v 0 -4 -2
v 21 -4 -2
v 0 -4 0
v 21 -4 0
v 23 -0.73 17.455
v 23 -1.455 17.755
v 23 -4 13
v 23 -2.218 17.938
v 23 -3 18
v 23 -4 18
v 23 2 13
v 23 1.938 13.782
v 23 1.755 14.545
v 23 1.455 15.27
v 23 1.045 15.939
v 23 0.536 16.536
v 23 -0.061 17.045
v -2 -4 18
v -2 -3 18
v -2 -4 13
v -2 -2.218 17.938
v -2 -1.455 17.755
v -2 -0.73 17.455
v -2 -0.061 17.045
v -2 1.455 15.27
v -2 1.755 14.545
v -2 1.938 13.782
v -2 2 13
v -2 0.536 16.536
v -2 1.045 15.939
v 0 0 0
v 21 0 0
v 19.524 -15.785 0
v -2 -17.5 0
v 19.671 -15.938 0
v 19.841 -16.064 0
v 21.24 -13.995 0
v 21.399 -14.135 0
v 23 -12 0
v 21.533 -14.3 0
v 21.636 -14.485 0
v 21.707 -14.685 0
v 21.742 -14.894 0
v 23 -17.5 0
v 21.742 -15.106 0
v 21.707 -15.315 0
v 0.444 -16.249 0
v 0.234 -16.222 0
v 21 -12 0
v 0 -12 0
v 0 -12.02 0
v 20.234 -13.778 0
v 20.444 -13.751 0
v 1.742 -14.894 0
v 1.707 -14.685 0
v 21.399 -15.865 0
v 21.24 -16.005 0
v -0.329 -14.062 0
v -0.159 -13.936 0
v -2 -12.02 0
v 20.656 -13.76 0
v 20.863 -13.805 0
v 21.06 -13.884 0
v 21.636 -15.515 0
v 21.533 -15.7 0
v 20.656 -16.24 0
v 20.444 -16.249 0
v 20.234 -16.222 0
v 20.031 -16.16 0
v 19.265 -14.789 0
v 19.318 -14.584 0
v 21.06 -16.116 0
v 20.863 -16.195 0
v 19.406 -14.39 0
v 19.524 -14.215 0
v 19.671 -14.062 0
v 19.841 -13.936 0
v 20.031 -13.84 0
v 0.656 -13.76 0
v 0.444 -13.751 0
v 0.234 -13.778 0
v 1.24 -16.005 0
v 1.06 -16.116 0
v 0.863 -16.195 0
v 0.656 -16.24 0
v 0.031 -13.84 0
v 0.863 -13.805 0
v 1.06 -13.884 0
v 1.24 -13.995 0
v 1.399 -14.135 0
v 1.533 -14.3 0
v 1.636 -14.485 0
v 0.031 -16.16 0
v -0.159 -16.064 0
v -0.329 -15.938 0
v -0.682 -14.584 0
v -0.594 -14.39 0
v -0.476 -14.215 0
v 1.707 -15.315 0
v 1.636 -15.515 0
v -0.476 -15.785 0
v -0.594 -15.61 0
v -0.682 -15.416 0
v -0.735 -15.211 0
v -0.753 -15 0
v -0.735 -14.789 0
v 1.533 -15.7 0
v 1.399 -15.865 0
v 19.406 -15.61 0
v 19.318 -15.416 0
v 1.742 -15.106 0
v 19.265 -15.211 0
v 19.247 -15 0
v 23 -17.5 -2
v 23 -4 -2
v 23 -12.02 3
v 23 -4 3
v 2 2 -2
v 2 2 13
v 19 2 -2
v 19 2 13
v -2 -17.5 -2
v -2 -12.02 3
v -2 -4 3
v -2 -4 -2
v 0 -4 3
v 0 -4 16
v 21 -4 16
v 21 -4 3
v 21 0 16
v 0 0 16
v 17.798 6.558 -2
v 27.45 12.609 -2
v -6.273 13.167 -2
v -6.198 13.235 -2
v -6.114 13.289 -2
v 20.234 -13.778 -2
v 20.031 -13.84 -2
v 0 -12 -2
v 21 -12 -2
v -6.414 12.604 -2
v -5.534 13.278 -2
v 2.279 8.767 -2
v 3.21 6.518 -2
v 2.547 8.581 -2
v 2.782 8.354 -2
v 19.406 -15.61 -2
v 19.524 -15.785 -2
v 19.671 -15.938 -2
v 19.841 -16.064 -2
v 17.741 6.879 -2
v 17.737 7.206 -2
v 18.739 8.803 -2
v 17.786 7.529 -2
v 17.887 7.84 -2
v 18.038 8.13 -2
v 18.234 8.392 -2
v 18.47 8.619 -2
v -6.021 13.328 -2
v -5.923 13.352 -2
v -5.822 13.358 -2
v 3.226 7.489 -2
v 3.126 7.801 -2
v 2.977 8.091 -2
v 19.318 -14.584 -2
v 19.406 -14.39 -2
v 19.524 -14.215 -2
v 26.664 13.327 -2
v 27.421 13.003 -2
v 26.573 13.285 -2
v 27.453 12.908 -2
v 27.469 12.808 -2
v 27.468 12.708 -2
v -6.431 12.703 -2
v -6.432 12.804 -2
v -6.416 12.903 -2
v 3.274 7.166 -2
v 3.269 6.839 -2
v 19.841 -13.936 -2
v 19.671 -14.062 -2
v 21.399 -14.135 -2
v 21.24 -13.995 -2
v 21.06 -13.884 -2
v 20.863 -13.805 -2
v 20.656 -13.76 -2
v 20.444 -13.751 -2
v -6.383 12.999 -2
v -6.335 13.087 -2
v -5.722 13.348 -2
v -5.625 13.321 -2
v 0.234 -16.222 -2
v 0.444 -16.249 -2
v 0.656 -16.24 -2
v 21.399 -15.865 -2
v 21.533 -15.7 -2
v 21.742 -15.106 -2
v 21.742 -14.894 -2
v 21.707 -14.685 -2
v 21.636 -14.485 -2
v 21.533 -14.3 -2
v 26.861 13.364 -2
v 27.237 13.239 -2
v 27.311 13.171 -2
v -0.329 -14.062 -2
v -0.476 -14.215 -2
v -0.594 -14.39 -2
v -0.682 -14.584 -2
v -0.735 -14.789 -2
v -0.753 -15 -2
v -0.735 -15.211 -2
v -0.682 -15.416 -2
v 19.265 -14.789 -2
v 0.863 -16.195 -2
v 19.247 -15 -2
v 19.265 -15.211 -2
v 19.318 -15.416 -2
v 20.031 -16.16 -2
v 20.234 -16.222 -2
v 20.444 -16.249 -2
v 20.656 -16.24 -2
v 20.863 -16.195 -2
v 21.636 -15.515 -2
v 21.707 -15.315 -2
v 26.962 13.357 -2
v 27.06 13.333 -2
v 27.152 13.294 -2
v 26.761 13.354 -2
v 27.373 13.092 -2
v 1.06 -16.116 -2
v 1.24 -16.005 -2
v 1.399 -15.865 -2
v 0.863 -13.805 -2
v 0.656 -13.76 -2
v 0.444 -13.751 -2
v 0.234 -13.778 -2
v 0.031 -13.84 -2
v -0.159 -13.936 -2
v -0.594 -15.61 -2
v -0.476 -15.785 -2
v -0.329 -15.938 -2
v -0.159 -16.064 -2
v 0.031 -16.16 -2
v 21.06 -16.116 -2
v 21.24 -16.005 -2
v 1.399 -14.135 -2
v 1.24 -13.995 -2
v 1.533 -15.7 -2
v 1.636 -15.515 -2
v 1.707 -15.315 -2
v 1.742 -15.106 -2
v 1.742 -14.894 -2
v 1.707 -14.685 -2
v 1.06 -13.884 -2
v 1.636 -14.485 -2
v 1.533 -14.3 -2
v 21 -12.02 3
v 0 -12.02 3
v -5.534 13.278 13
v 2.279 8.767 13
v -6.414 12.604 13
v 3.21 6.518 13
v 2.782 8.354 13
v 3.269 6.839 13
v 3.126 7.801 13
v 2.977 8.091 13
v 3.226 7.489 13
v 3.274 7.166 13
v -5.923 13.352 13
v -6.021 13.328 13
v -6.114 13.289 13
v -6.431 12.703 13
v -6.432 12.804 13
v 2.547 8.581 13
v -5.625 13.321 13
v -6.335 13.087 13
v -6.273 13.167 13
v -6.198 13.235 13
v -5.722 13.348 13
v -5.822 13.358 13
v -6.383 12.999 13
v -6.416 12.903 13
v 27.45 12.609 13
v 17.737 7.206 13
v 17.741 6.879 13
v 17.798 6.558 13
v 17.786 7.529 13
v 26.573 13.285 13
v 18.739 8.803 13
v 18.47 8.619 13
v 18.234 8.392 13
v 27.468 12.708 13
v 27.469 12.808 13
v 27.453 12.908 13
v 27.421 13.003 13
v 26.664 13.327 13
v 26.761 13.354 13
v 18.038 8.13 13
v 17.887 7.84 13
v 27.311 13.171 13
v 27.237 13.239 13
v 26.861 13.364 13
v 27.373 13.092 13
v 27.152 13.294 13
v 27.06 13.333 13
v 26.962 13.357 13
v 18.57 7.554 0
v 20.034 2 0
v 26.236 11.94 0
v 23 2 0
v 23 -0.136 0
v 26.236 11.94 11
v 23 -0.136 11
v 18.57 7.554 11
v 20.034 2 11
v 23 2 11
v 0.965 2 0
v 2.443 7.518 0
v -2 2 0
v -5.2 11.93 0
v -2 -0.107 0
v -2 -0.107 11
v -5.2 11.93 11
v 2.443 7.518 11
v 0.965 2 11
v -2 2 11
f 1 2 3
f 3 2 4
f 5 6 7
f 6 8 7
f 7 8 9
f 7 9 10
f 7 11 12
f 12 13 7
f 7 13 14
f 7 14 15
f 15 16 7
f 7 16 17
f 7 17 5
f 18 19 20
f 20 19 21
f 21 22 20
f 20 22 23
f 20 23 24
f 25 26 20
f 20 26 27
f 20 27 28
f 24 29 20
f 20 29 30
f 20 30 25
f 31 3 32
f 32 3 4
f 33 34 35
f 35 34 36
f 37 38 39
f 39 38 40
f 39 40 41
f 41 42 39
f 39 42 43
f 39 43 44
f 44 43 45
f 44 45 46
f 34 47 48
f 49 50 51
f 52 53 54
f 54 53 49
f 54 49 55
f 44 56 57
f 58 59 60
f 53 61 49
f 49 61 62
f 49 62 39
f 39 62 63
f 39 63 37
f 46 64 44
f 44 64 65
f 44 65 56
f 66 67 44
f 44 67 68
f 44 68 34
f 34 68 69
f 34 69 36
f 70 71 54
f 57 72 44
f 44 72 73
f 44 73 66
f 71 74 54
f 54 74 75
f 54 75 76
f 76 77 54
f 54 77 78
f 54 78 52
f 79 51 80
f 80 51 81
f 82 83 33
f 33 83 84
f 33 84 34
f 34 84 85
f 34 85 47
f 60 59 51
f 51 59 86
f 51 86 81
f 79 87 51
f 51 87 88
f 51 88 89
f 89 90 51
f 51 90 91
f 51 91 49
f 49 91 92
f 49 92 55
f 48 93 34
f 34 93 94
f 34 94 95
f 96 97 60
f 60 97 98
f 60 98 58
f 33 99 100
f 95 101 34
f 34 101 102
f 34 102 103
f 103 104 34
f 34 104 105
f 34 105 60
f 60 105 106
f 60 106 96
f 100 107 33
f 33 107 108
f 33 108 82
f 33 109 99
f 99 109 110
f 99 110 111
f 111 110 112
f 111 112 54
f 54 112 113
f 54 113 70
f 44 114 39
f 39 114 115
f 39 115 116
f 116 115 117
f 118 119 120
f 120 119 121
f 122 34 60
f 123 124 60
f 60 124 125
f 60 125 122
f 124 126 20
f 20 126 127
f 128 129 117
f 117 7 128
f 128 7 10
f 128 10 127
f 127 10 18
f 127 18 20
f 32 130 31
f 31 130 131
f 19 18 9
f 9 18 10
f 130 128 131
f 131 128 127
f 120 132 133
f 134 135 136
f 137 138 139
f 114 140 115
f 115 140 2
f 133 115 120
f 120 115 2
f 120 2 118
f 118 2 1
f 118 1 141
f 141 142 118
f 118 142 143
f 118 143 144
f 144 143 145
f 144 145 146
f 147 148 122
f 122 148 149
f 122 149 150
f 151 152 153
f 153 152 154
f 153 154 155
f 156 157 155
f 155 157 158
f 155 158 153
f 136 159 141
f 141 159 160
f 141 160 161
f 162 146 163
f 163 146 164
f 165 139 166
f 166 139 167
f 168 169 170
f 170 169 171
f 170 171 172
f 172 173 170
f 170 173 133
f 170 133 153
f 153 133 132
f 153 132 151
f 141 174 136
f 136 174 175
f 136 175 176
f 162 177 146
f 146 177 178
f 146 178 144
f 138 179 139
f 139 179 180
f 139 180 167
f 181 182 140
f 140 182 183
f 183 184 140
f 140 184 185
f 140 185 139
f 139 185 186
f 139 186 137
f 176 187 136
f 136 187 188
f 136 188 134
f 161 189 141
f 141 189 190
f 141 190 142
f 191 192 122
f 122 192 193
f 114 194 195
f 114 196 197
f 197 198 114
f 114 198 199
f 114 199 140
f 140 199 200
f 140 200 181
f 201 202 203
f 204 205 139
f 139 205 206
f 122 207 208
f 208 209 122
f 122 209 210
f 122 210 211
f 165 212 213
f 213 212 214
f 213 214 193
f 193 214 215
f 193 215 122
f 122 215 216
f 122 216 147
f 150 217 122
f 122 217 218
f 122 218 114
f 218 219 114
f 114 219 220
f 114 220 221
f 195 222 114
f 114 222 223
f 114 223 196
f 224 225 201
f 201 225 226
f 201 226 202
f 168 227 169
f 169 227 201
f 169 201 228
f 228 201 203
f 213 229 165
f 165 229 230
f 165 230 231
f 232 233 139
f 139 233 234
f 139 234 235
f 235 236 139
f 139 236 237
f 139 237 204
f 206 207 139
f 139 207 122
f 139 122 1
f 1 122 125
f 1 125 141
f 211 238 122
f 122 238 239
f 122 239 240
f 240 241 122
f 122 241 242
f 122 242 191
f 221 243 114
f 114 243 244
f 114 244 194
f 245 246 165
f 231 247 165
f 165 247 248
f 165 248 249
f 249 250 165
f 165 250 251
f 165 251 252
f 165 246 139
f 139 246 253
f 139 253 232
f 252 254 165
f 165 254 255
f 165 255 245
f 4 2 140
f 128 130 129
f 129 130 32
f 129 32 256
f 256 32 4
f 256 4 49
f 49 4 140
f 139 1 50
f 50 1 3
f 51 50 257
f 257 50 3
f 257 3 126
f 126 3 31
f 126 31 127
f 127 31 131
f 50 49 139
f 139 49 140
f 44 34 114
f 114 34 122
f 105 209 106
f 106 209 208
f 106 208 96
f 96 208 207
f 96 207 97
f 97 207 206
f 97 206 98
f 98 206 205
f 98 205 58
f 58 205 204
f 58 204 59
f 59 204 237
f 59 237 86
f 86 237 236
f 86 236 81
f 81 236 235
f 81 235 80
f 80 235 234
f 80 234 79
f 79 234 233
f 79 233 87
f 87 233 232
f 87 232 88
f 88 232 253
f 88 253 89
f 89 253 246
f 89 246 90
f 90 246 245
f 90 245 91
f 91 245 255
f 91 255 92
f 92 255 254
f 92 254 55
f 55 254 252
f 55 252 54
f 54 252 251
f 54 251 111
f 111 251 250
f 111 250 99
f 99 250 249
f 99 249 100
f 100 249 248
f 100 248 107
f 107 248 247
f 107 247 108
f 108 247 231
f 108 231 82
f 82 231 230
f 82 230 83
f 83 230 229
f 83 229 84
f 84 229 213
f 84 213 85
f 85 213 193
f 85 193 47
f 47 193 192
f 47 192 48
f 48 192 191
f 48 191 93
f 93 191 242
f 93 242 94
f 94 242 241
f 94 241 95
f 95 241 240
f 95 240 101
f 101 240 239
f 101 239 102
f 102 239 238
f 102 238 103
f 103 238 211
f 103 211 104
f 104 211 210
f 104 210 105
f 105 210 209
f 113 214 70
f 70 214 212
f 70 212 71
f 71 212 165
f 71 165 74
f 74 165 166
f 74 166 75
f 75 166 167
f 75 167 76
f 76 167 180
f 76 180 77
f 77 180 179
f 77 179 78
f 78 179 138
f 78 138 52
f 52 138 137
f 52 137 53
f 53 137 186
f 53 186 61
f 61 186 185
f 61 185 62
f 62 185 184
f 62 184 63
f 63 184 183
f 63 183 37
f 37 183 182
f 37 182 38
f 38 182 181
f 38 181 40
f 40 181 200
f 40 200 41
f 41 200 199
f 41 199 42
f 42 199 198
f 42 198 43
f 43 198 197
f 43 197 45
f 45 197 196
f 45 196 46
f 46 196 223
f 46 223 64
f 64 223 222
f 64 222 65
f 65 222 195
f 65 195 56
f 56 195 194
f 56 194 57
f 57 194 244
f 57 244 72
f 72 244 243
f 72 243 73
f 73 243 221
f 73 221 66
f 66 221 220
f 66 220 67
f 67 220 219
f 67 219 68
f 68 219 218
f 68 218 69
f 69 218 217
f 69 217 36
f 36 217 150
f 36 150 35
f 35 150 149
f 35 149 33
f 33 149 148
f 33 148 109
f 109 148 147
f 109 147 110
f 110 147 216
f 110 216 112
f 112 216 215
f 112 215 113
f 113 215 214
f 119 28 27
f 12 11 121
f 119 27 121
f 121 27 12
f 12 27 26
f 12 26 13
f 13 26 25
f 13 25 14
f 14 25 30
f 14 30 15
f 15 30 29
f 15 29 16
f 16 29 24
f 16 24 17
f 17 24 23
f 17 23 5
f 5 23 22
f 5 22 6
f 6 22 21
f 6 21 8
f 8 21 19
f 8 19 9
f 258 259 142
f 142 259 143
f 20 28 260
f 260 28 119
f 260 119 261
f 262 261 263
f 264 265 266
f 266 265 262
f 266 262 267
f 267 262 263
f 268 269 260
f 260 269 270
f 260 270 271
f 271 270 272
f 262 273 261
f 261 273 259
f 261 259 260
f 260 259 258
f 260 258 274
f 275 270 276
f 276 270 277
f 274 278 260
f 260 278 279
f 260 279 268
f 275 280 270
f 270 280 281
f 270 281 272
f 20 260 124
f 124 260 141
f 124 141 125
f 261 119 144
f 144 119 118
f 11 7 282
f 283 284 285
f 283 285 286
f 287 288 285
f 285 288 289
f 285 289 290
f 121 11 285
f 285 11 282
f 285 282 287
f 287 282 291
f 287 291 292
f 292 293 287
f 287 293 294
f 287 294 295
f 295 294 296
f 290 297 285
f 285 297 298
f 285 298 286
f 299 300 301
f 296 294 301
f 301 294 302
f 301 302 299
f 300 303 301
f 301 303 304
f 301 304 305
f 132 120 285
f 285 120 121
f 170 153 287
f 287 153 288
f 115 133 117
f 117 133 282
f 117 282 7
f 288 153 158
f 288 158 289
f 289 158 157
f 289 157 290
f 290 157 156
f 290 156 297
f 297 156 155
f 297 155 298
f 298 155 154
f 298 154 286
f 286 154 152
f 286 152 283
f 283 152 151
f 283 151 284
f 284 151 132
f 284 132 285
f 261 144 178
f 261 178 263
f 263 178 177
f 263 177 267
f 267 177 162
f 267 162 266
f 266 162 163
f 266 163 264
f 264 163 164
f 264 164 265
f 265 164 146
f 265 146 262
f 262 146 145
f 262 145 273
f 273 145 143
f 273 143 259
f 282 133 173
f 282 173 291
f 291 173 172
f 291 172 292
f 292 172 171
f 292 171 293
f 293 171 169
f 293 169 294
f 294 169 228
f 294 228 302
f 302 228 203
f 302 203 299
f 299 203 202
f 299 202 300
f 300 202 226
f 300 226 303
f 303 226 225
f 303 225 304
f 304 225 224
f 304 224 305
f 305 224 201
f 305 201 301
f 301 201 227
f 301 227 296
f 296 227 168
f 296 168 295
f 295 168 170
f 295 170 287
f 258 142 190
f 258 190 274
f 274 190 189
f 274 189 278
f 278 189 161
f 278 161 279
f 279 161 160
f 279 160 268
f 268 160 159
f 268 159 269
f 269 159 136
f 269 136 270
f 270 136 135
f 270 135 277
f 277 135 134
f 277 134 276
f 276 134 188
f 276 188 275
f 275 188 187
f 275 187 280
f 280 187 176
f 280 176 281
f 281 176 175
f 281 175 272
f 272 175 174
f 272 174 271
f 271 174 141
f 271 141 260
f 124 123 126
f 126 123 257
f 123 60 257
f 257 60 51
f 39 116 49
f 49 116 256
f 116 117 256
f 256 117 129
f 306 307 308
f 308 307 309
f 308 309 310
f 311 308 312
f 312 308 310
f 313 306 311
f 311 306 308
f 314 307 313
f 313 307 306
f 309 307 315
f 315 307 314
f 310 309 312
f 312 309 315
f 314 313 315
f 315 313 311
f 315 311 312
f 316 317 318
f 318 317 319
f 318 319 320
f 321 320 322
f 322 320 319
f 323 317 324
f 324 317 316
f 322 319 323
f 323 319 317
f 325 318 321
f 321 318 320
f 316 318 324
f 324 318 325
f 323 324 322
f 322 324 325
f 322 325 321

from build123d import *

# Parameters (mm, degrees)
BOSS_EXTRUDE1_DEPTH  = 16
SKETCH3_W            = 25
SKETCH3_H            = 6
BOSS_EXTRUDE2_DEPTH  = 2
SKETCH6_W            = 25
SKETCH6_H            = 15
BOSS_EXTRUDE3_DEPTH  = 2
SKETCH7_W            = 21
SKETCH7_H            = 8
CUT_EXTRUDE1_DEPTH   = 2
SKETCH10_W           = 25
SKETCH10_H           = 4.5
BOSS_EXTRUDE4_DEPTH  = 2
CUT_EXTRUDE2_DEPTH   = 3
FILLET1_R            = 5
BOSS_EXTRUDE7_DEPTH  = 15
BOSS_EXTRUDE8_DEPTH  = 2
BOSS_EXTRUDE9_DEPTH  = 2
FILLET4_R            = 2
FILLET5_R            = 0.6
SKETCH16_W           = 3
SKETCH16_H           = 8.020078622
BOSS_EXTRUDE10_DEPTH = 2
BOSS_EXTRUDE11_DEPTH = 2
SKETCH18_W           = 21
SKETCH18_H           = 13
CUT_EXTRUDE3_DEPTH   = 4


with BuildPart() as part:
    # Sketch1 → Boss-Extrude1 (new body)
    with BuildSketch(Plane.XY):
        Polygon((23, 2), (-2, 2), (-2, -4), (0, -4), (0, 0), (21, 0), (21, -4), (23, -4), align=None)
    extrude(amount=BOSS_EXTRUDE1_DEPTH)

    # Sketch3 → Boss-Extrude2 (add)
    with BuildSketch(Plane.XY.offset(16)):
        with Locations((10.5, -1)):
            Rectangle(SKETCH3_W, SKETCH3_H)
    extrude(amount=BOSS_EXTRUDE2_DEPTH)

    # Sketch6 → Boss-Extrude3 (add)
    with BuildSketch(Plane(origin=(0, 0, 0), x_dir=(-1, 0, 0), z_dir=(0, 0, -1))):
        with Locations((-10.5, -5.5)):
            Rectangle(SKETCH6_W, SKETCH6_H)
    extrude(amount=BOSS_EXTRUDE3_DEPTH)

    # Sketch7 → Cut-Extrude1 (cut)
    with BuildSketch(Plane(origin=(0, 0, -2), x_dir=(-1, 0, 0), z_dir=(0, 0, -1))):
        with Locations((-10.5, -8)):
            Rectangle(SKETCH7_W, SKETCH7_H)
    extrude(amount=-CUT_EXTRUDE1_DEPTH, mode=Mode.SUBTRACT)

    # Sketch10 → Boss-Extrude4 (add)
    with BuildSketch(Plane(origin=(0, 0, -2), x_dir=(-1, 0, 0), z_dir=(0, 0, -1))):
        with Locations((-10.5, -15.25)):
            Rectangle(SKETCH10_W, SKETCH10_H)
    extrude(amount=-BOSS_EXTRUDE4_DEPTH)

    # Sketch11 → Cut-Extrude2 (cut)
    with BuildSketch(Plane(origin=(0, 0, -2), x_dir=(-1, 0, 0), z_dir=(0, 0, -1))):
        with BuildLine():
            ThreePointArc((-19.246874512, -15), (-19.813649388, -13.953241465), (-21, -13.855725233))
            Line((-21, -13.855725233), (-21, -16.144274767))
            ThreePointArc((-21, -16.144274767), (-19.813649388, -16.046758535), (-19.246874512, -15))
        make_face()
        with BuildLine():
            Line((-21, -16.144274767), (-21, -13.855725233))
            ThreePointArc((-21, -13.855725233), (-21.746874512, -15), (-21, -16.144274767))
        make_face()
        with BuildLine():
            ThreePointArc((0.753125488, -15), (0.548016186, -14.313921703), (0, -13.852997071))
            Line((0, -13.852997071), (0, -16.147002929))
            ThreePointArc((0, -16.147002929), (0.548016186, -15.686078297), (0.753125488, -15))
        make_face()
        with BuildLine():
            Line((0, -16.147002929), (0, -13.852997071))
            ThreePointArc((0, -13.852997071), (-1.746874512, -15), (0, -16.147002929))
        make_face()
    extrude(amount=-CUT_EXTRUDE2_DEPTH, mode=Mode.SUBTRACT)

    # Fillet1
    fillet1_edges = [part.edges().sort_by_distance(p)[0] for p in [
        (10.5, 2, 18),
    ]]
    fillet(fillet1_edges, radius=FILLET1_R)

    # Sketch13 → Boss-Extrude7 (add)
    with BuildSketch(Plane(origin=(0, 0, -2), x_dir=(-1, 0, 0), z_dir=(0, 0, -1))):
        Polygon((-21, -4), (-23, -4), (-27.823085464, 14), (-17.406964655, 8.041440838), (-19, 2), (-2, 2), (-3.607695155, 8), (6.784609691, 14), (2, -4), (0, -4), align=None)
        Polygon((-22.232673012, -3), (-26.235818051, 11.939940677), (-18.569558802, 7.554444375), (-20.297865317, 1), (-0.696774627, 1), (-2.44317049, 7.51763809), (5.199725285, 11.930266023), (1.231086646, -3), (0, -3), (-21, -3), align=None, mode=Mode.SUBTRACT)
    extrude(amount=-BOSS_EXTRUDE7_DEPTH)

    # Sketch14 → Boss-Extrude8 (add)
    with BuildSketch(Plane(origin=(0, 0, -2), x_dir=(-1, 0, 0), z_dir=(0, 0, -1))):
        Polygon((-27.823085464, 14), (-23, -4), (-19, 2), (-17.406964655, 8.041440838), align=None)
        Polygon((-2, 2), (2, -4), (6.784609691, 14), (-3.607695155, 8), align=None)
    extrude(amount=-BOSS_EXTRUDE8_DEPTH)

    # Sketch15 → Boss-Extrude9 (add)
    with BuildSketch(Plane.XY.offset(13)):
        Polygon((-6.784609691, 14), (-2, -4), (2, 2), (3.607695155, 8), align=None)
        Polygon((19, 2), (23, -4), (27.823085464, 14), (17.406964655, 8.041440838), align=None)
    extrude(amount=-BOSS_EXTRUDE9_DEPTH)

    # Fillet4
    fillet4_edges = [part.edges().sort_by_distance(p)[0] for p in [
        (17.406964655, 8.041440838, 5.5),
        (3.607695155, 8, 5.5),
    ]]
    fillet(fillet4_edges, radius=FILLET4_R)

    # Fillet5
    fillet5_edges = [part.edges().sort_by_distance(p)[0] for p in [
        (27.823085464, 14, 5.5),
        (-6.784609691, 14, 5.5),
    ]]
    fillet(fillet5_edges, radius=FILLET5_R)

    # Sketch16 → Boss-Extrude10 (add)
    with BuildSketch(Plane.ZY.offset(2)):
        with Locations((1.5, -8.010039311)):
            Rectangle(SKETCH16_W, SKETCH16_H)
    extrude(amount=-BOSS_EXTRUDE10_DEPTH)

    # Sketch17 → Boss-Extrude11 (add)
    with BuildSketch(Plane(origin=(23, 0, 0), x_dir=(0, 0, -1), z_dir=(1, 0, 0))):
        Polygon((0, -12), (-3, -12.020078622), (-3, -4), (0, -4), align=None)
    extrude(amount=-BOSS_EXTRUDE11_DEPTH)

    # Sketch18 → Cut-Extrude3 (cut)
    with BuildSketch(Plane.XZ.offset(4)):
        with Locations((10.5, 6.5)):
            Rectangle(SKETCH18_W, SKETCH18_H)
    extrude(amount=-CUT_EXTRUDE3_DEPTH, mode=Mode.SUBTRACT)


solid = part.part
